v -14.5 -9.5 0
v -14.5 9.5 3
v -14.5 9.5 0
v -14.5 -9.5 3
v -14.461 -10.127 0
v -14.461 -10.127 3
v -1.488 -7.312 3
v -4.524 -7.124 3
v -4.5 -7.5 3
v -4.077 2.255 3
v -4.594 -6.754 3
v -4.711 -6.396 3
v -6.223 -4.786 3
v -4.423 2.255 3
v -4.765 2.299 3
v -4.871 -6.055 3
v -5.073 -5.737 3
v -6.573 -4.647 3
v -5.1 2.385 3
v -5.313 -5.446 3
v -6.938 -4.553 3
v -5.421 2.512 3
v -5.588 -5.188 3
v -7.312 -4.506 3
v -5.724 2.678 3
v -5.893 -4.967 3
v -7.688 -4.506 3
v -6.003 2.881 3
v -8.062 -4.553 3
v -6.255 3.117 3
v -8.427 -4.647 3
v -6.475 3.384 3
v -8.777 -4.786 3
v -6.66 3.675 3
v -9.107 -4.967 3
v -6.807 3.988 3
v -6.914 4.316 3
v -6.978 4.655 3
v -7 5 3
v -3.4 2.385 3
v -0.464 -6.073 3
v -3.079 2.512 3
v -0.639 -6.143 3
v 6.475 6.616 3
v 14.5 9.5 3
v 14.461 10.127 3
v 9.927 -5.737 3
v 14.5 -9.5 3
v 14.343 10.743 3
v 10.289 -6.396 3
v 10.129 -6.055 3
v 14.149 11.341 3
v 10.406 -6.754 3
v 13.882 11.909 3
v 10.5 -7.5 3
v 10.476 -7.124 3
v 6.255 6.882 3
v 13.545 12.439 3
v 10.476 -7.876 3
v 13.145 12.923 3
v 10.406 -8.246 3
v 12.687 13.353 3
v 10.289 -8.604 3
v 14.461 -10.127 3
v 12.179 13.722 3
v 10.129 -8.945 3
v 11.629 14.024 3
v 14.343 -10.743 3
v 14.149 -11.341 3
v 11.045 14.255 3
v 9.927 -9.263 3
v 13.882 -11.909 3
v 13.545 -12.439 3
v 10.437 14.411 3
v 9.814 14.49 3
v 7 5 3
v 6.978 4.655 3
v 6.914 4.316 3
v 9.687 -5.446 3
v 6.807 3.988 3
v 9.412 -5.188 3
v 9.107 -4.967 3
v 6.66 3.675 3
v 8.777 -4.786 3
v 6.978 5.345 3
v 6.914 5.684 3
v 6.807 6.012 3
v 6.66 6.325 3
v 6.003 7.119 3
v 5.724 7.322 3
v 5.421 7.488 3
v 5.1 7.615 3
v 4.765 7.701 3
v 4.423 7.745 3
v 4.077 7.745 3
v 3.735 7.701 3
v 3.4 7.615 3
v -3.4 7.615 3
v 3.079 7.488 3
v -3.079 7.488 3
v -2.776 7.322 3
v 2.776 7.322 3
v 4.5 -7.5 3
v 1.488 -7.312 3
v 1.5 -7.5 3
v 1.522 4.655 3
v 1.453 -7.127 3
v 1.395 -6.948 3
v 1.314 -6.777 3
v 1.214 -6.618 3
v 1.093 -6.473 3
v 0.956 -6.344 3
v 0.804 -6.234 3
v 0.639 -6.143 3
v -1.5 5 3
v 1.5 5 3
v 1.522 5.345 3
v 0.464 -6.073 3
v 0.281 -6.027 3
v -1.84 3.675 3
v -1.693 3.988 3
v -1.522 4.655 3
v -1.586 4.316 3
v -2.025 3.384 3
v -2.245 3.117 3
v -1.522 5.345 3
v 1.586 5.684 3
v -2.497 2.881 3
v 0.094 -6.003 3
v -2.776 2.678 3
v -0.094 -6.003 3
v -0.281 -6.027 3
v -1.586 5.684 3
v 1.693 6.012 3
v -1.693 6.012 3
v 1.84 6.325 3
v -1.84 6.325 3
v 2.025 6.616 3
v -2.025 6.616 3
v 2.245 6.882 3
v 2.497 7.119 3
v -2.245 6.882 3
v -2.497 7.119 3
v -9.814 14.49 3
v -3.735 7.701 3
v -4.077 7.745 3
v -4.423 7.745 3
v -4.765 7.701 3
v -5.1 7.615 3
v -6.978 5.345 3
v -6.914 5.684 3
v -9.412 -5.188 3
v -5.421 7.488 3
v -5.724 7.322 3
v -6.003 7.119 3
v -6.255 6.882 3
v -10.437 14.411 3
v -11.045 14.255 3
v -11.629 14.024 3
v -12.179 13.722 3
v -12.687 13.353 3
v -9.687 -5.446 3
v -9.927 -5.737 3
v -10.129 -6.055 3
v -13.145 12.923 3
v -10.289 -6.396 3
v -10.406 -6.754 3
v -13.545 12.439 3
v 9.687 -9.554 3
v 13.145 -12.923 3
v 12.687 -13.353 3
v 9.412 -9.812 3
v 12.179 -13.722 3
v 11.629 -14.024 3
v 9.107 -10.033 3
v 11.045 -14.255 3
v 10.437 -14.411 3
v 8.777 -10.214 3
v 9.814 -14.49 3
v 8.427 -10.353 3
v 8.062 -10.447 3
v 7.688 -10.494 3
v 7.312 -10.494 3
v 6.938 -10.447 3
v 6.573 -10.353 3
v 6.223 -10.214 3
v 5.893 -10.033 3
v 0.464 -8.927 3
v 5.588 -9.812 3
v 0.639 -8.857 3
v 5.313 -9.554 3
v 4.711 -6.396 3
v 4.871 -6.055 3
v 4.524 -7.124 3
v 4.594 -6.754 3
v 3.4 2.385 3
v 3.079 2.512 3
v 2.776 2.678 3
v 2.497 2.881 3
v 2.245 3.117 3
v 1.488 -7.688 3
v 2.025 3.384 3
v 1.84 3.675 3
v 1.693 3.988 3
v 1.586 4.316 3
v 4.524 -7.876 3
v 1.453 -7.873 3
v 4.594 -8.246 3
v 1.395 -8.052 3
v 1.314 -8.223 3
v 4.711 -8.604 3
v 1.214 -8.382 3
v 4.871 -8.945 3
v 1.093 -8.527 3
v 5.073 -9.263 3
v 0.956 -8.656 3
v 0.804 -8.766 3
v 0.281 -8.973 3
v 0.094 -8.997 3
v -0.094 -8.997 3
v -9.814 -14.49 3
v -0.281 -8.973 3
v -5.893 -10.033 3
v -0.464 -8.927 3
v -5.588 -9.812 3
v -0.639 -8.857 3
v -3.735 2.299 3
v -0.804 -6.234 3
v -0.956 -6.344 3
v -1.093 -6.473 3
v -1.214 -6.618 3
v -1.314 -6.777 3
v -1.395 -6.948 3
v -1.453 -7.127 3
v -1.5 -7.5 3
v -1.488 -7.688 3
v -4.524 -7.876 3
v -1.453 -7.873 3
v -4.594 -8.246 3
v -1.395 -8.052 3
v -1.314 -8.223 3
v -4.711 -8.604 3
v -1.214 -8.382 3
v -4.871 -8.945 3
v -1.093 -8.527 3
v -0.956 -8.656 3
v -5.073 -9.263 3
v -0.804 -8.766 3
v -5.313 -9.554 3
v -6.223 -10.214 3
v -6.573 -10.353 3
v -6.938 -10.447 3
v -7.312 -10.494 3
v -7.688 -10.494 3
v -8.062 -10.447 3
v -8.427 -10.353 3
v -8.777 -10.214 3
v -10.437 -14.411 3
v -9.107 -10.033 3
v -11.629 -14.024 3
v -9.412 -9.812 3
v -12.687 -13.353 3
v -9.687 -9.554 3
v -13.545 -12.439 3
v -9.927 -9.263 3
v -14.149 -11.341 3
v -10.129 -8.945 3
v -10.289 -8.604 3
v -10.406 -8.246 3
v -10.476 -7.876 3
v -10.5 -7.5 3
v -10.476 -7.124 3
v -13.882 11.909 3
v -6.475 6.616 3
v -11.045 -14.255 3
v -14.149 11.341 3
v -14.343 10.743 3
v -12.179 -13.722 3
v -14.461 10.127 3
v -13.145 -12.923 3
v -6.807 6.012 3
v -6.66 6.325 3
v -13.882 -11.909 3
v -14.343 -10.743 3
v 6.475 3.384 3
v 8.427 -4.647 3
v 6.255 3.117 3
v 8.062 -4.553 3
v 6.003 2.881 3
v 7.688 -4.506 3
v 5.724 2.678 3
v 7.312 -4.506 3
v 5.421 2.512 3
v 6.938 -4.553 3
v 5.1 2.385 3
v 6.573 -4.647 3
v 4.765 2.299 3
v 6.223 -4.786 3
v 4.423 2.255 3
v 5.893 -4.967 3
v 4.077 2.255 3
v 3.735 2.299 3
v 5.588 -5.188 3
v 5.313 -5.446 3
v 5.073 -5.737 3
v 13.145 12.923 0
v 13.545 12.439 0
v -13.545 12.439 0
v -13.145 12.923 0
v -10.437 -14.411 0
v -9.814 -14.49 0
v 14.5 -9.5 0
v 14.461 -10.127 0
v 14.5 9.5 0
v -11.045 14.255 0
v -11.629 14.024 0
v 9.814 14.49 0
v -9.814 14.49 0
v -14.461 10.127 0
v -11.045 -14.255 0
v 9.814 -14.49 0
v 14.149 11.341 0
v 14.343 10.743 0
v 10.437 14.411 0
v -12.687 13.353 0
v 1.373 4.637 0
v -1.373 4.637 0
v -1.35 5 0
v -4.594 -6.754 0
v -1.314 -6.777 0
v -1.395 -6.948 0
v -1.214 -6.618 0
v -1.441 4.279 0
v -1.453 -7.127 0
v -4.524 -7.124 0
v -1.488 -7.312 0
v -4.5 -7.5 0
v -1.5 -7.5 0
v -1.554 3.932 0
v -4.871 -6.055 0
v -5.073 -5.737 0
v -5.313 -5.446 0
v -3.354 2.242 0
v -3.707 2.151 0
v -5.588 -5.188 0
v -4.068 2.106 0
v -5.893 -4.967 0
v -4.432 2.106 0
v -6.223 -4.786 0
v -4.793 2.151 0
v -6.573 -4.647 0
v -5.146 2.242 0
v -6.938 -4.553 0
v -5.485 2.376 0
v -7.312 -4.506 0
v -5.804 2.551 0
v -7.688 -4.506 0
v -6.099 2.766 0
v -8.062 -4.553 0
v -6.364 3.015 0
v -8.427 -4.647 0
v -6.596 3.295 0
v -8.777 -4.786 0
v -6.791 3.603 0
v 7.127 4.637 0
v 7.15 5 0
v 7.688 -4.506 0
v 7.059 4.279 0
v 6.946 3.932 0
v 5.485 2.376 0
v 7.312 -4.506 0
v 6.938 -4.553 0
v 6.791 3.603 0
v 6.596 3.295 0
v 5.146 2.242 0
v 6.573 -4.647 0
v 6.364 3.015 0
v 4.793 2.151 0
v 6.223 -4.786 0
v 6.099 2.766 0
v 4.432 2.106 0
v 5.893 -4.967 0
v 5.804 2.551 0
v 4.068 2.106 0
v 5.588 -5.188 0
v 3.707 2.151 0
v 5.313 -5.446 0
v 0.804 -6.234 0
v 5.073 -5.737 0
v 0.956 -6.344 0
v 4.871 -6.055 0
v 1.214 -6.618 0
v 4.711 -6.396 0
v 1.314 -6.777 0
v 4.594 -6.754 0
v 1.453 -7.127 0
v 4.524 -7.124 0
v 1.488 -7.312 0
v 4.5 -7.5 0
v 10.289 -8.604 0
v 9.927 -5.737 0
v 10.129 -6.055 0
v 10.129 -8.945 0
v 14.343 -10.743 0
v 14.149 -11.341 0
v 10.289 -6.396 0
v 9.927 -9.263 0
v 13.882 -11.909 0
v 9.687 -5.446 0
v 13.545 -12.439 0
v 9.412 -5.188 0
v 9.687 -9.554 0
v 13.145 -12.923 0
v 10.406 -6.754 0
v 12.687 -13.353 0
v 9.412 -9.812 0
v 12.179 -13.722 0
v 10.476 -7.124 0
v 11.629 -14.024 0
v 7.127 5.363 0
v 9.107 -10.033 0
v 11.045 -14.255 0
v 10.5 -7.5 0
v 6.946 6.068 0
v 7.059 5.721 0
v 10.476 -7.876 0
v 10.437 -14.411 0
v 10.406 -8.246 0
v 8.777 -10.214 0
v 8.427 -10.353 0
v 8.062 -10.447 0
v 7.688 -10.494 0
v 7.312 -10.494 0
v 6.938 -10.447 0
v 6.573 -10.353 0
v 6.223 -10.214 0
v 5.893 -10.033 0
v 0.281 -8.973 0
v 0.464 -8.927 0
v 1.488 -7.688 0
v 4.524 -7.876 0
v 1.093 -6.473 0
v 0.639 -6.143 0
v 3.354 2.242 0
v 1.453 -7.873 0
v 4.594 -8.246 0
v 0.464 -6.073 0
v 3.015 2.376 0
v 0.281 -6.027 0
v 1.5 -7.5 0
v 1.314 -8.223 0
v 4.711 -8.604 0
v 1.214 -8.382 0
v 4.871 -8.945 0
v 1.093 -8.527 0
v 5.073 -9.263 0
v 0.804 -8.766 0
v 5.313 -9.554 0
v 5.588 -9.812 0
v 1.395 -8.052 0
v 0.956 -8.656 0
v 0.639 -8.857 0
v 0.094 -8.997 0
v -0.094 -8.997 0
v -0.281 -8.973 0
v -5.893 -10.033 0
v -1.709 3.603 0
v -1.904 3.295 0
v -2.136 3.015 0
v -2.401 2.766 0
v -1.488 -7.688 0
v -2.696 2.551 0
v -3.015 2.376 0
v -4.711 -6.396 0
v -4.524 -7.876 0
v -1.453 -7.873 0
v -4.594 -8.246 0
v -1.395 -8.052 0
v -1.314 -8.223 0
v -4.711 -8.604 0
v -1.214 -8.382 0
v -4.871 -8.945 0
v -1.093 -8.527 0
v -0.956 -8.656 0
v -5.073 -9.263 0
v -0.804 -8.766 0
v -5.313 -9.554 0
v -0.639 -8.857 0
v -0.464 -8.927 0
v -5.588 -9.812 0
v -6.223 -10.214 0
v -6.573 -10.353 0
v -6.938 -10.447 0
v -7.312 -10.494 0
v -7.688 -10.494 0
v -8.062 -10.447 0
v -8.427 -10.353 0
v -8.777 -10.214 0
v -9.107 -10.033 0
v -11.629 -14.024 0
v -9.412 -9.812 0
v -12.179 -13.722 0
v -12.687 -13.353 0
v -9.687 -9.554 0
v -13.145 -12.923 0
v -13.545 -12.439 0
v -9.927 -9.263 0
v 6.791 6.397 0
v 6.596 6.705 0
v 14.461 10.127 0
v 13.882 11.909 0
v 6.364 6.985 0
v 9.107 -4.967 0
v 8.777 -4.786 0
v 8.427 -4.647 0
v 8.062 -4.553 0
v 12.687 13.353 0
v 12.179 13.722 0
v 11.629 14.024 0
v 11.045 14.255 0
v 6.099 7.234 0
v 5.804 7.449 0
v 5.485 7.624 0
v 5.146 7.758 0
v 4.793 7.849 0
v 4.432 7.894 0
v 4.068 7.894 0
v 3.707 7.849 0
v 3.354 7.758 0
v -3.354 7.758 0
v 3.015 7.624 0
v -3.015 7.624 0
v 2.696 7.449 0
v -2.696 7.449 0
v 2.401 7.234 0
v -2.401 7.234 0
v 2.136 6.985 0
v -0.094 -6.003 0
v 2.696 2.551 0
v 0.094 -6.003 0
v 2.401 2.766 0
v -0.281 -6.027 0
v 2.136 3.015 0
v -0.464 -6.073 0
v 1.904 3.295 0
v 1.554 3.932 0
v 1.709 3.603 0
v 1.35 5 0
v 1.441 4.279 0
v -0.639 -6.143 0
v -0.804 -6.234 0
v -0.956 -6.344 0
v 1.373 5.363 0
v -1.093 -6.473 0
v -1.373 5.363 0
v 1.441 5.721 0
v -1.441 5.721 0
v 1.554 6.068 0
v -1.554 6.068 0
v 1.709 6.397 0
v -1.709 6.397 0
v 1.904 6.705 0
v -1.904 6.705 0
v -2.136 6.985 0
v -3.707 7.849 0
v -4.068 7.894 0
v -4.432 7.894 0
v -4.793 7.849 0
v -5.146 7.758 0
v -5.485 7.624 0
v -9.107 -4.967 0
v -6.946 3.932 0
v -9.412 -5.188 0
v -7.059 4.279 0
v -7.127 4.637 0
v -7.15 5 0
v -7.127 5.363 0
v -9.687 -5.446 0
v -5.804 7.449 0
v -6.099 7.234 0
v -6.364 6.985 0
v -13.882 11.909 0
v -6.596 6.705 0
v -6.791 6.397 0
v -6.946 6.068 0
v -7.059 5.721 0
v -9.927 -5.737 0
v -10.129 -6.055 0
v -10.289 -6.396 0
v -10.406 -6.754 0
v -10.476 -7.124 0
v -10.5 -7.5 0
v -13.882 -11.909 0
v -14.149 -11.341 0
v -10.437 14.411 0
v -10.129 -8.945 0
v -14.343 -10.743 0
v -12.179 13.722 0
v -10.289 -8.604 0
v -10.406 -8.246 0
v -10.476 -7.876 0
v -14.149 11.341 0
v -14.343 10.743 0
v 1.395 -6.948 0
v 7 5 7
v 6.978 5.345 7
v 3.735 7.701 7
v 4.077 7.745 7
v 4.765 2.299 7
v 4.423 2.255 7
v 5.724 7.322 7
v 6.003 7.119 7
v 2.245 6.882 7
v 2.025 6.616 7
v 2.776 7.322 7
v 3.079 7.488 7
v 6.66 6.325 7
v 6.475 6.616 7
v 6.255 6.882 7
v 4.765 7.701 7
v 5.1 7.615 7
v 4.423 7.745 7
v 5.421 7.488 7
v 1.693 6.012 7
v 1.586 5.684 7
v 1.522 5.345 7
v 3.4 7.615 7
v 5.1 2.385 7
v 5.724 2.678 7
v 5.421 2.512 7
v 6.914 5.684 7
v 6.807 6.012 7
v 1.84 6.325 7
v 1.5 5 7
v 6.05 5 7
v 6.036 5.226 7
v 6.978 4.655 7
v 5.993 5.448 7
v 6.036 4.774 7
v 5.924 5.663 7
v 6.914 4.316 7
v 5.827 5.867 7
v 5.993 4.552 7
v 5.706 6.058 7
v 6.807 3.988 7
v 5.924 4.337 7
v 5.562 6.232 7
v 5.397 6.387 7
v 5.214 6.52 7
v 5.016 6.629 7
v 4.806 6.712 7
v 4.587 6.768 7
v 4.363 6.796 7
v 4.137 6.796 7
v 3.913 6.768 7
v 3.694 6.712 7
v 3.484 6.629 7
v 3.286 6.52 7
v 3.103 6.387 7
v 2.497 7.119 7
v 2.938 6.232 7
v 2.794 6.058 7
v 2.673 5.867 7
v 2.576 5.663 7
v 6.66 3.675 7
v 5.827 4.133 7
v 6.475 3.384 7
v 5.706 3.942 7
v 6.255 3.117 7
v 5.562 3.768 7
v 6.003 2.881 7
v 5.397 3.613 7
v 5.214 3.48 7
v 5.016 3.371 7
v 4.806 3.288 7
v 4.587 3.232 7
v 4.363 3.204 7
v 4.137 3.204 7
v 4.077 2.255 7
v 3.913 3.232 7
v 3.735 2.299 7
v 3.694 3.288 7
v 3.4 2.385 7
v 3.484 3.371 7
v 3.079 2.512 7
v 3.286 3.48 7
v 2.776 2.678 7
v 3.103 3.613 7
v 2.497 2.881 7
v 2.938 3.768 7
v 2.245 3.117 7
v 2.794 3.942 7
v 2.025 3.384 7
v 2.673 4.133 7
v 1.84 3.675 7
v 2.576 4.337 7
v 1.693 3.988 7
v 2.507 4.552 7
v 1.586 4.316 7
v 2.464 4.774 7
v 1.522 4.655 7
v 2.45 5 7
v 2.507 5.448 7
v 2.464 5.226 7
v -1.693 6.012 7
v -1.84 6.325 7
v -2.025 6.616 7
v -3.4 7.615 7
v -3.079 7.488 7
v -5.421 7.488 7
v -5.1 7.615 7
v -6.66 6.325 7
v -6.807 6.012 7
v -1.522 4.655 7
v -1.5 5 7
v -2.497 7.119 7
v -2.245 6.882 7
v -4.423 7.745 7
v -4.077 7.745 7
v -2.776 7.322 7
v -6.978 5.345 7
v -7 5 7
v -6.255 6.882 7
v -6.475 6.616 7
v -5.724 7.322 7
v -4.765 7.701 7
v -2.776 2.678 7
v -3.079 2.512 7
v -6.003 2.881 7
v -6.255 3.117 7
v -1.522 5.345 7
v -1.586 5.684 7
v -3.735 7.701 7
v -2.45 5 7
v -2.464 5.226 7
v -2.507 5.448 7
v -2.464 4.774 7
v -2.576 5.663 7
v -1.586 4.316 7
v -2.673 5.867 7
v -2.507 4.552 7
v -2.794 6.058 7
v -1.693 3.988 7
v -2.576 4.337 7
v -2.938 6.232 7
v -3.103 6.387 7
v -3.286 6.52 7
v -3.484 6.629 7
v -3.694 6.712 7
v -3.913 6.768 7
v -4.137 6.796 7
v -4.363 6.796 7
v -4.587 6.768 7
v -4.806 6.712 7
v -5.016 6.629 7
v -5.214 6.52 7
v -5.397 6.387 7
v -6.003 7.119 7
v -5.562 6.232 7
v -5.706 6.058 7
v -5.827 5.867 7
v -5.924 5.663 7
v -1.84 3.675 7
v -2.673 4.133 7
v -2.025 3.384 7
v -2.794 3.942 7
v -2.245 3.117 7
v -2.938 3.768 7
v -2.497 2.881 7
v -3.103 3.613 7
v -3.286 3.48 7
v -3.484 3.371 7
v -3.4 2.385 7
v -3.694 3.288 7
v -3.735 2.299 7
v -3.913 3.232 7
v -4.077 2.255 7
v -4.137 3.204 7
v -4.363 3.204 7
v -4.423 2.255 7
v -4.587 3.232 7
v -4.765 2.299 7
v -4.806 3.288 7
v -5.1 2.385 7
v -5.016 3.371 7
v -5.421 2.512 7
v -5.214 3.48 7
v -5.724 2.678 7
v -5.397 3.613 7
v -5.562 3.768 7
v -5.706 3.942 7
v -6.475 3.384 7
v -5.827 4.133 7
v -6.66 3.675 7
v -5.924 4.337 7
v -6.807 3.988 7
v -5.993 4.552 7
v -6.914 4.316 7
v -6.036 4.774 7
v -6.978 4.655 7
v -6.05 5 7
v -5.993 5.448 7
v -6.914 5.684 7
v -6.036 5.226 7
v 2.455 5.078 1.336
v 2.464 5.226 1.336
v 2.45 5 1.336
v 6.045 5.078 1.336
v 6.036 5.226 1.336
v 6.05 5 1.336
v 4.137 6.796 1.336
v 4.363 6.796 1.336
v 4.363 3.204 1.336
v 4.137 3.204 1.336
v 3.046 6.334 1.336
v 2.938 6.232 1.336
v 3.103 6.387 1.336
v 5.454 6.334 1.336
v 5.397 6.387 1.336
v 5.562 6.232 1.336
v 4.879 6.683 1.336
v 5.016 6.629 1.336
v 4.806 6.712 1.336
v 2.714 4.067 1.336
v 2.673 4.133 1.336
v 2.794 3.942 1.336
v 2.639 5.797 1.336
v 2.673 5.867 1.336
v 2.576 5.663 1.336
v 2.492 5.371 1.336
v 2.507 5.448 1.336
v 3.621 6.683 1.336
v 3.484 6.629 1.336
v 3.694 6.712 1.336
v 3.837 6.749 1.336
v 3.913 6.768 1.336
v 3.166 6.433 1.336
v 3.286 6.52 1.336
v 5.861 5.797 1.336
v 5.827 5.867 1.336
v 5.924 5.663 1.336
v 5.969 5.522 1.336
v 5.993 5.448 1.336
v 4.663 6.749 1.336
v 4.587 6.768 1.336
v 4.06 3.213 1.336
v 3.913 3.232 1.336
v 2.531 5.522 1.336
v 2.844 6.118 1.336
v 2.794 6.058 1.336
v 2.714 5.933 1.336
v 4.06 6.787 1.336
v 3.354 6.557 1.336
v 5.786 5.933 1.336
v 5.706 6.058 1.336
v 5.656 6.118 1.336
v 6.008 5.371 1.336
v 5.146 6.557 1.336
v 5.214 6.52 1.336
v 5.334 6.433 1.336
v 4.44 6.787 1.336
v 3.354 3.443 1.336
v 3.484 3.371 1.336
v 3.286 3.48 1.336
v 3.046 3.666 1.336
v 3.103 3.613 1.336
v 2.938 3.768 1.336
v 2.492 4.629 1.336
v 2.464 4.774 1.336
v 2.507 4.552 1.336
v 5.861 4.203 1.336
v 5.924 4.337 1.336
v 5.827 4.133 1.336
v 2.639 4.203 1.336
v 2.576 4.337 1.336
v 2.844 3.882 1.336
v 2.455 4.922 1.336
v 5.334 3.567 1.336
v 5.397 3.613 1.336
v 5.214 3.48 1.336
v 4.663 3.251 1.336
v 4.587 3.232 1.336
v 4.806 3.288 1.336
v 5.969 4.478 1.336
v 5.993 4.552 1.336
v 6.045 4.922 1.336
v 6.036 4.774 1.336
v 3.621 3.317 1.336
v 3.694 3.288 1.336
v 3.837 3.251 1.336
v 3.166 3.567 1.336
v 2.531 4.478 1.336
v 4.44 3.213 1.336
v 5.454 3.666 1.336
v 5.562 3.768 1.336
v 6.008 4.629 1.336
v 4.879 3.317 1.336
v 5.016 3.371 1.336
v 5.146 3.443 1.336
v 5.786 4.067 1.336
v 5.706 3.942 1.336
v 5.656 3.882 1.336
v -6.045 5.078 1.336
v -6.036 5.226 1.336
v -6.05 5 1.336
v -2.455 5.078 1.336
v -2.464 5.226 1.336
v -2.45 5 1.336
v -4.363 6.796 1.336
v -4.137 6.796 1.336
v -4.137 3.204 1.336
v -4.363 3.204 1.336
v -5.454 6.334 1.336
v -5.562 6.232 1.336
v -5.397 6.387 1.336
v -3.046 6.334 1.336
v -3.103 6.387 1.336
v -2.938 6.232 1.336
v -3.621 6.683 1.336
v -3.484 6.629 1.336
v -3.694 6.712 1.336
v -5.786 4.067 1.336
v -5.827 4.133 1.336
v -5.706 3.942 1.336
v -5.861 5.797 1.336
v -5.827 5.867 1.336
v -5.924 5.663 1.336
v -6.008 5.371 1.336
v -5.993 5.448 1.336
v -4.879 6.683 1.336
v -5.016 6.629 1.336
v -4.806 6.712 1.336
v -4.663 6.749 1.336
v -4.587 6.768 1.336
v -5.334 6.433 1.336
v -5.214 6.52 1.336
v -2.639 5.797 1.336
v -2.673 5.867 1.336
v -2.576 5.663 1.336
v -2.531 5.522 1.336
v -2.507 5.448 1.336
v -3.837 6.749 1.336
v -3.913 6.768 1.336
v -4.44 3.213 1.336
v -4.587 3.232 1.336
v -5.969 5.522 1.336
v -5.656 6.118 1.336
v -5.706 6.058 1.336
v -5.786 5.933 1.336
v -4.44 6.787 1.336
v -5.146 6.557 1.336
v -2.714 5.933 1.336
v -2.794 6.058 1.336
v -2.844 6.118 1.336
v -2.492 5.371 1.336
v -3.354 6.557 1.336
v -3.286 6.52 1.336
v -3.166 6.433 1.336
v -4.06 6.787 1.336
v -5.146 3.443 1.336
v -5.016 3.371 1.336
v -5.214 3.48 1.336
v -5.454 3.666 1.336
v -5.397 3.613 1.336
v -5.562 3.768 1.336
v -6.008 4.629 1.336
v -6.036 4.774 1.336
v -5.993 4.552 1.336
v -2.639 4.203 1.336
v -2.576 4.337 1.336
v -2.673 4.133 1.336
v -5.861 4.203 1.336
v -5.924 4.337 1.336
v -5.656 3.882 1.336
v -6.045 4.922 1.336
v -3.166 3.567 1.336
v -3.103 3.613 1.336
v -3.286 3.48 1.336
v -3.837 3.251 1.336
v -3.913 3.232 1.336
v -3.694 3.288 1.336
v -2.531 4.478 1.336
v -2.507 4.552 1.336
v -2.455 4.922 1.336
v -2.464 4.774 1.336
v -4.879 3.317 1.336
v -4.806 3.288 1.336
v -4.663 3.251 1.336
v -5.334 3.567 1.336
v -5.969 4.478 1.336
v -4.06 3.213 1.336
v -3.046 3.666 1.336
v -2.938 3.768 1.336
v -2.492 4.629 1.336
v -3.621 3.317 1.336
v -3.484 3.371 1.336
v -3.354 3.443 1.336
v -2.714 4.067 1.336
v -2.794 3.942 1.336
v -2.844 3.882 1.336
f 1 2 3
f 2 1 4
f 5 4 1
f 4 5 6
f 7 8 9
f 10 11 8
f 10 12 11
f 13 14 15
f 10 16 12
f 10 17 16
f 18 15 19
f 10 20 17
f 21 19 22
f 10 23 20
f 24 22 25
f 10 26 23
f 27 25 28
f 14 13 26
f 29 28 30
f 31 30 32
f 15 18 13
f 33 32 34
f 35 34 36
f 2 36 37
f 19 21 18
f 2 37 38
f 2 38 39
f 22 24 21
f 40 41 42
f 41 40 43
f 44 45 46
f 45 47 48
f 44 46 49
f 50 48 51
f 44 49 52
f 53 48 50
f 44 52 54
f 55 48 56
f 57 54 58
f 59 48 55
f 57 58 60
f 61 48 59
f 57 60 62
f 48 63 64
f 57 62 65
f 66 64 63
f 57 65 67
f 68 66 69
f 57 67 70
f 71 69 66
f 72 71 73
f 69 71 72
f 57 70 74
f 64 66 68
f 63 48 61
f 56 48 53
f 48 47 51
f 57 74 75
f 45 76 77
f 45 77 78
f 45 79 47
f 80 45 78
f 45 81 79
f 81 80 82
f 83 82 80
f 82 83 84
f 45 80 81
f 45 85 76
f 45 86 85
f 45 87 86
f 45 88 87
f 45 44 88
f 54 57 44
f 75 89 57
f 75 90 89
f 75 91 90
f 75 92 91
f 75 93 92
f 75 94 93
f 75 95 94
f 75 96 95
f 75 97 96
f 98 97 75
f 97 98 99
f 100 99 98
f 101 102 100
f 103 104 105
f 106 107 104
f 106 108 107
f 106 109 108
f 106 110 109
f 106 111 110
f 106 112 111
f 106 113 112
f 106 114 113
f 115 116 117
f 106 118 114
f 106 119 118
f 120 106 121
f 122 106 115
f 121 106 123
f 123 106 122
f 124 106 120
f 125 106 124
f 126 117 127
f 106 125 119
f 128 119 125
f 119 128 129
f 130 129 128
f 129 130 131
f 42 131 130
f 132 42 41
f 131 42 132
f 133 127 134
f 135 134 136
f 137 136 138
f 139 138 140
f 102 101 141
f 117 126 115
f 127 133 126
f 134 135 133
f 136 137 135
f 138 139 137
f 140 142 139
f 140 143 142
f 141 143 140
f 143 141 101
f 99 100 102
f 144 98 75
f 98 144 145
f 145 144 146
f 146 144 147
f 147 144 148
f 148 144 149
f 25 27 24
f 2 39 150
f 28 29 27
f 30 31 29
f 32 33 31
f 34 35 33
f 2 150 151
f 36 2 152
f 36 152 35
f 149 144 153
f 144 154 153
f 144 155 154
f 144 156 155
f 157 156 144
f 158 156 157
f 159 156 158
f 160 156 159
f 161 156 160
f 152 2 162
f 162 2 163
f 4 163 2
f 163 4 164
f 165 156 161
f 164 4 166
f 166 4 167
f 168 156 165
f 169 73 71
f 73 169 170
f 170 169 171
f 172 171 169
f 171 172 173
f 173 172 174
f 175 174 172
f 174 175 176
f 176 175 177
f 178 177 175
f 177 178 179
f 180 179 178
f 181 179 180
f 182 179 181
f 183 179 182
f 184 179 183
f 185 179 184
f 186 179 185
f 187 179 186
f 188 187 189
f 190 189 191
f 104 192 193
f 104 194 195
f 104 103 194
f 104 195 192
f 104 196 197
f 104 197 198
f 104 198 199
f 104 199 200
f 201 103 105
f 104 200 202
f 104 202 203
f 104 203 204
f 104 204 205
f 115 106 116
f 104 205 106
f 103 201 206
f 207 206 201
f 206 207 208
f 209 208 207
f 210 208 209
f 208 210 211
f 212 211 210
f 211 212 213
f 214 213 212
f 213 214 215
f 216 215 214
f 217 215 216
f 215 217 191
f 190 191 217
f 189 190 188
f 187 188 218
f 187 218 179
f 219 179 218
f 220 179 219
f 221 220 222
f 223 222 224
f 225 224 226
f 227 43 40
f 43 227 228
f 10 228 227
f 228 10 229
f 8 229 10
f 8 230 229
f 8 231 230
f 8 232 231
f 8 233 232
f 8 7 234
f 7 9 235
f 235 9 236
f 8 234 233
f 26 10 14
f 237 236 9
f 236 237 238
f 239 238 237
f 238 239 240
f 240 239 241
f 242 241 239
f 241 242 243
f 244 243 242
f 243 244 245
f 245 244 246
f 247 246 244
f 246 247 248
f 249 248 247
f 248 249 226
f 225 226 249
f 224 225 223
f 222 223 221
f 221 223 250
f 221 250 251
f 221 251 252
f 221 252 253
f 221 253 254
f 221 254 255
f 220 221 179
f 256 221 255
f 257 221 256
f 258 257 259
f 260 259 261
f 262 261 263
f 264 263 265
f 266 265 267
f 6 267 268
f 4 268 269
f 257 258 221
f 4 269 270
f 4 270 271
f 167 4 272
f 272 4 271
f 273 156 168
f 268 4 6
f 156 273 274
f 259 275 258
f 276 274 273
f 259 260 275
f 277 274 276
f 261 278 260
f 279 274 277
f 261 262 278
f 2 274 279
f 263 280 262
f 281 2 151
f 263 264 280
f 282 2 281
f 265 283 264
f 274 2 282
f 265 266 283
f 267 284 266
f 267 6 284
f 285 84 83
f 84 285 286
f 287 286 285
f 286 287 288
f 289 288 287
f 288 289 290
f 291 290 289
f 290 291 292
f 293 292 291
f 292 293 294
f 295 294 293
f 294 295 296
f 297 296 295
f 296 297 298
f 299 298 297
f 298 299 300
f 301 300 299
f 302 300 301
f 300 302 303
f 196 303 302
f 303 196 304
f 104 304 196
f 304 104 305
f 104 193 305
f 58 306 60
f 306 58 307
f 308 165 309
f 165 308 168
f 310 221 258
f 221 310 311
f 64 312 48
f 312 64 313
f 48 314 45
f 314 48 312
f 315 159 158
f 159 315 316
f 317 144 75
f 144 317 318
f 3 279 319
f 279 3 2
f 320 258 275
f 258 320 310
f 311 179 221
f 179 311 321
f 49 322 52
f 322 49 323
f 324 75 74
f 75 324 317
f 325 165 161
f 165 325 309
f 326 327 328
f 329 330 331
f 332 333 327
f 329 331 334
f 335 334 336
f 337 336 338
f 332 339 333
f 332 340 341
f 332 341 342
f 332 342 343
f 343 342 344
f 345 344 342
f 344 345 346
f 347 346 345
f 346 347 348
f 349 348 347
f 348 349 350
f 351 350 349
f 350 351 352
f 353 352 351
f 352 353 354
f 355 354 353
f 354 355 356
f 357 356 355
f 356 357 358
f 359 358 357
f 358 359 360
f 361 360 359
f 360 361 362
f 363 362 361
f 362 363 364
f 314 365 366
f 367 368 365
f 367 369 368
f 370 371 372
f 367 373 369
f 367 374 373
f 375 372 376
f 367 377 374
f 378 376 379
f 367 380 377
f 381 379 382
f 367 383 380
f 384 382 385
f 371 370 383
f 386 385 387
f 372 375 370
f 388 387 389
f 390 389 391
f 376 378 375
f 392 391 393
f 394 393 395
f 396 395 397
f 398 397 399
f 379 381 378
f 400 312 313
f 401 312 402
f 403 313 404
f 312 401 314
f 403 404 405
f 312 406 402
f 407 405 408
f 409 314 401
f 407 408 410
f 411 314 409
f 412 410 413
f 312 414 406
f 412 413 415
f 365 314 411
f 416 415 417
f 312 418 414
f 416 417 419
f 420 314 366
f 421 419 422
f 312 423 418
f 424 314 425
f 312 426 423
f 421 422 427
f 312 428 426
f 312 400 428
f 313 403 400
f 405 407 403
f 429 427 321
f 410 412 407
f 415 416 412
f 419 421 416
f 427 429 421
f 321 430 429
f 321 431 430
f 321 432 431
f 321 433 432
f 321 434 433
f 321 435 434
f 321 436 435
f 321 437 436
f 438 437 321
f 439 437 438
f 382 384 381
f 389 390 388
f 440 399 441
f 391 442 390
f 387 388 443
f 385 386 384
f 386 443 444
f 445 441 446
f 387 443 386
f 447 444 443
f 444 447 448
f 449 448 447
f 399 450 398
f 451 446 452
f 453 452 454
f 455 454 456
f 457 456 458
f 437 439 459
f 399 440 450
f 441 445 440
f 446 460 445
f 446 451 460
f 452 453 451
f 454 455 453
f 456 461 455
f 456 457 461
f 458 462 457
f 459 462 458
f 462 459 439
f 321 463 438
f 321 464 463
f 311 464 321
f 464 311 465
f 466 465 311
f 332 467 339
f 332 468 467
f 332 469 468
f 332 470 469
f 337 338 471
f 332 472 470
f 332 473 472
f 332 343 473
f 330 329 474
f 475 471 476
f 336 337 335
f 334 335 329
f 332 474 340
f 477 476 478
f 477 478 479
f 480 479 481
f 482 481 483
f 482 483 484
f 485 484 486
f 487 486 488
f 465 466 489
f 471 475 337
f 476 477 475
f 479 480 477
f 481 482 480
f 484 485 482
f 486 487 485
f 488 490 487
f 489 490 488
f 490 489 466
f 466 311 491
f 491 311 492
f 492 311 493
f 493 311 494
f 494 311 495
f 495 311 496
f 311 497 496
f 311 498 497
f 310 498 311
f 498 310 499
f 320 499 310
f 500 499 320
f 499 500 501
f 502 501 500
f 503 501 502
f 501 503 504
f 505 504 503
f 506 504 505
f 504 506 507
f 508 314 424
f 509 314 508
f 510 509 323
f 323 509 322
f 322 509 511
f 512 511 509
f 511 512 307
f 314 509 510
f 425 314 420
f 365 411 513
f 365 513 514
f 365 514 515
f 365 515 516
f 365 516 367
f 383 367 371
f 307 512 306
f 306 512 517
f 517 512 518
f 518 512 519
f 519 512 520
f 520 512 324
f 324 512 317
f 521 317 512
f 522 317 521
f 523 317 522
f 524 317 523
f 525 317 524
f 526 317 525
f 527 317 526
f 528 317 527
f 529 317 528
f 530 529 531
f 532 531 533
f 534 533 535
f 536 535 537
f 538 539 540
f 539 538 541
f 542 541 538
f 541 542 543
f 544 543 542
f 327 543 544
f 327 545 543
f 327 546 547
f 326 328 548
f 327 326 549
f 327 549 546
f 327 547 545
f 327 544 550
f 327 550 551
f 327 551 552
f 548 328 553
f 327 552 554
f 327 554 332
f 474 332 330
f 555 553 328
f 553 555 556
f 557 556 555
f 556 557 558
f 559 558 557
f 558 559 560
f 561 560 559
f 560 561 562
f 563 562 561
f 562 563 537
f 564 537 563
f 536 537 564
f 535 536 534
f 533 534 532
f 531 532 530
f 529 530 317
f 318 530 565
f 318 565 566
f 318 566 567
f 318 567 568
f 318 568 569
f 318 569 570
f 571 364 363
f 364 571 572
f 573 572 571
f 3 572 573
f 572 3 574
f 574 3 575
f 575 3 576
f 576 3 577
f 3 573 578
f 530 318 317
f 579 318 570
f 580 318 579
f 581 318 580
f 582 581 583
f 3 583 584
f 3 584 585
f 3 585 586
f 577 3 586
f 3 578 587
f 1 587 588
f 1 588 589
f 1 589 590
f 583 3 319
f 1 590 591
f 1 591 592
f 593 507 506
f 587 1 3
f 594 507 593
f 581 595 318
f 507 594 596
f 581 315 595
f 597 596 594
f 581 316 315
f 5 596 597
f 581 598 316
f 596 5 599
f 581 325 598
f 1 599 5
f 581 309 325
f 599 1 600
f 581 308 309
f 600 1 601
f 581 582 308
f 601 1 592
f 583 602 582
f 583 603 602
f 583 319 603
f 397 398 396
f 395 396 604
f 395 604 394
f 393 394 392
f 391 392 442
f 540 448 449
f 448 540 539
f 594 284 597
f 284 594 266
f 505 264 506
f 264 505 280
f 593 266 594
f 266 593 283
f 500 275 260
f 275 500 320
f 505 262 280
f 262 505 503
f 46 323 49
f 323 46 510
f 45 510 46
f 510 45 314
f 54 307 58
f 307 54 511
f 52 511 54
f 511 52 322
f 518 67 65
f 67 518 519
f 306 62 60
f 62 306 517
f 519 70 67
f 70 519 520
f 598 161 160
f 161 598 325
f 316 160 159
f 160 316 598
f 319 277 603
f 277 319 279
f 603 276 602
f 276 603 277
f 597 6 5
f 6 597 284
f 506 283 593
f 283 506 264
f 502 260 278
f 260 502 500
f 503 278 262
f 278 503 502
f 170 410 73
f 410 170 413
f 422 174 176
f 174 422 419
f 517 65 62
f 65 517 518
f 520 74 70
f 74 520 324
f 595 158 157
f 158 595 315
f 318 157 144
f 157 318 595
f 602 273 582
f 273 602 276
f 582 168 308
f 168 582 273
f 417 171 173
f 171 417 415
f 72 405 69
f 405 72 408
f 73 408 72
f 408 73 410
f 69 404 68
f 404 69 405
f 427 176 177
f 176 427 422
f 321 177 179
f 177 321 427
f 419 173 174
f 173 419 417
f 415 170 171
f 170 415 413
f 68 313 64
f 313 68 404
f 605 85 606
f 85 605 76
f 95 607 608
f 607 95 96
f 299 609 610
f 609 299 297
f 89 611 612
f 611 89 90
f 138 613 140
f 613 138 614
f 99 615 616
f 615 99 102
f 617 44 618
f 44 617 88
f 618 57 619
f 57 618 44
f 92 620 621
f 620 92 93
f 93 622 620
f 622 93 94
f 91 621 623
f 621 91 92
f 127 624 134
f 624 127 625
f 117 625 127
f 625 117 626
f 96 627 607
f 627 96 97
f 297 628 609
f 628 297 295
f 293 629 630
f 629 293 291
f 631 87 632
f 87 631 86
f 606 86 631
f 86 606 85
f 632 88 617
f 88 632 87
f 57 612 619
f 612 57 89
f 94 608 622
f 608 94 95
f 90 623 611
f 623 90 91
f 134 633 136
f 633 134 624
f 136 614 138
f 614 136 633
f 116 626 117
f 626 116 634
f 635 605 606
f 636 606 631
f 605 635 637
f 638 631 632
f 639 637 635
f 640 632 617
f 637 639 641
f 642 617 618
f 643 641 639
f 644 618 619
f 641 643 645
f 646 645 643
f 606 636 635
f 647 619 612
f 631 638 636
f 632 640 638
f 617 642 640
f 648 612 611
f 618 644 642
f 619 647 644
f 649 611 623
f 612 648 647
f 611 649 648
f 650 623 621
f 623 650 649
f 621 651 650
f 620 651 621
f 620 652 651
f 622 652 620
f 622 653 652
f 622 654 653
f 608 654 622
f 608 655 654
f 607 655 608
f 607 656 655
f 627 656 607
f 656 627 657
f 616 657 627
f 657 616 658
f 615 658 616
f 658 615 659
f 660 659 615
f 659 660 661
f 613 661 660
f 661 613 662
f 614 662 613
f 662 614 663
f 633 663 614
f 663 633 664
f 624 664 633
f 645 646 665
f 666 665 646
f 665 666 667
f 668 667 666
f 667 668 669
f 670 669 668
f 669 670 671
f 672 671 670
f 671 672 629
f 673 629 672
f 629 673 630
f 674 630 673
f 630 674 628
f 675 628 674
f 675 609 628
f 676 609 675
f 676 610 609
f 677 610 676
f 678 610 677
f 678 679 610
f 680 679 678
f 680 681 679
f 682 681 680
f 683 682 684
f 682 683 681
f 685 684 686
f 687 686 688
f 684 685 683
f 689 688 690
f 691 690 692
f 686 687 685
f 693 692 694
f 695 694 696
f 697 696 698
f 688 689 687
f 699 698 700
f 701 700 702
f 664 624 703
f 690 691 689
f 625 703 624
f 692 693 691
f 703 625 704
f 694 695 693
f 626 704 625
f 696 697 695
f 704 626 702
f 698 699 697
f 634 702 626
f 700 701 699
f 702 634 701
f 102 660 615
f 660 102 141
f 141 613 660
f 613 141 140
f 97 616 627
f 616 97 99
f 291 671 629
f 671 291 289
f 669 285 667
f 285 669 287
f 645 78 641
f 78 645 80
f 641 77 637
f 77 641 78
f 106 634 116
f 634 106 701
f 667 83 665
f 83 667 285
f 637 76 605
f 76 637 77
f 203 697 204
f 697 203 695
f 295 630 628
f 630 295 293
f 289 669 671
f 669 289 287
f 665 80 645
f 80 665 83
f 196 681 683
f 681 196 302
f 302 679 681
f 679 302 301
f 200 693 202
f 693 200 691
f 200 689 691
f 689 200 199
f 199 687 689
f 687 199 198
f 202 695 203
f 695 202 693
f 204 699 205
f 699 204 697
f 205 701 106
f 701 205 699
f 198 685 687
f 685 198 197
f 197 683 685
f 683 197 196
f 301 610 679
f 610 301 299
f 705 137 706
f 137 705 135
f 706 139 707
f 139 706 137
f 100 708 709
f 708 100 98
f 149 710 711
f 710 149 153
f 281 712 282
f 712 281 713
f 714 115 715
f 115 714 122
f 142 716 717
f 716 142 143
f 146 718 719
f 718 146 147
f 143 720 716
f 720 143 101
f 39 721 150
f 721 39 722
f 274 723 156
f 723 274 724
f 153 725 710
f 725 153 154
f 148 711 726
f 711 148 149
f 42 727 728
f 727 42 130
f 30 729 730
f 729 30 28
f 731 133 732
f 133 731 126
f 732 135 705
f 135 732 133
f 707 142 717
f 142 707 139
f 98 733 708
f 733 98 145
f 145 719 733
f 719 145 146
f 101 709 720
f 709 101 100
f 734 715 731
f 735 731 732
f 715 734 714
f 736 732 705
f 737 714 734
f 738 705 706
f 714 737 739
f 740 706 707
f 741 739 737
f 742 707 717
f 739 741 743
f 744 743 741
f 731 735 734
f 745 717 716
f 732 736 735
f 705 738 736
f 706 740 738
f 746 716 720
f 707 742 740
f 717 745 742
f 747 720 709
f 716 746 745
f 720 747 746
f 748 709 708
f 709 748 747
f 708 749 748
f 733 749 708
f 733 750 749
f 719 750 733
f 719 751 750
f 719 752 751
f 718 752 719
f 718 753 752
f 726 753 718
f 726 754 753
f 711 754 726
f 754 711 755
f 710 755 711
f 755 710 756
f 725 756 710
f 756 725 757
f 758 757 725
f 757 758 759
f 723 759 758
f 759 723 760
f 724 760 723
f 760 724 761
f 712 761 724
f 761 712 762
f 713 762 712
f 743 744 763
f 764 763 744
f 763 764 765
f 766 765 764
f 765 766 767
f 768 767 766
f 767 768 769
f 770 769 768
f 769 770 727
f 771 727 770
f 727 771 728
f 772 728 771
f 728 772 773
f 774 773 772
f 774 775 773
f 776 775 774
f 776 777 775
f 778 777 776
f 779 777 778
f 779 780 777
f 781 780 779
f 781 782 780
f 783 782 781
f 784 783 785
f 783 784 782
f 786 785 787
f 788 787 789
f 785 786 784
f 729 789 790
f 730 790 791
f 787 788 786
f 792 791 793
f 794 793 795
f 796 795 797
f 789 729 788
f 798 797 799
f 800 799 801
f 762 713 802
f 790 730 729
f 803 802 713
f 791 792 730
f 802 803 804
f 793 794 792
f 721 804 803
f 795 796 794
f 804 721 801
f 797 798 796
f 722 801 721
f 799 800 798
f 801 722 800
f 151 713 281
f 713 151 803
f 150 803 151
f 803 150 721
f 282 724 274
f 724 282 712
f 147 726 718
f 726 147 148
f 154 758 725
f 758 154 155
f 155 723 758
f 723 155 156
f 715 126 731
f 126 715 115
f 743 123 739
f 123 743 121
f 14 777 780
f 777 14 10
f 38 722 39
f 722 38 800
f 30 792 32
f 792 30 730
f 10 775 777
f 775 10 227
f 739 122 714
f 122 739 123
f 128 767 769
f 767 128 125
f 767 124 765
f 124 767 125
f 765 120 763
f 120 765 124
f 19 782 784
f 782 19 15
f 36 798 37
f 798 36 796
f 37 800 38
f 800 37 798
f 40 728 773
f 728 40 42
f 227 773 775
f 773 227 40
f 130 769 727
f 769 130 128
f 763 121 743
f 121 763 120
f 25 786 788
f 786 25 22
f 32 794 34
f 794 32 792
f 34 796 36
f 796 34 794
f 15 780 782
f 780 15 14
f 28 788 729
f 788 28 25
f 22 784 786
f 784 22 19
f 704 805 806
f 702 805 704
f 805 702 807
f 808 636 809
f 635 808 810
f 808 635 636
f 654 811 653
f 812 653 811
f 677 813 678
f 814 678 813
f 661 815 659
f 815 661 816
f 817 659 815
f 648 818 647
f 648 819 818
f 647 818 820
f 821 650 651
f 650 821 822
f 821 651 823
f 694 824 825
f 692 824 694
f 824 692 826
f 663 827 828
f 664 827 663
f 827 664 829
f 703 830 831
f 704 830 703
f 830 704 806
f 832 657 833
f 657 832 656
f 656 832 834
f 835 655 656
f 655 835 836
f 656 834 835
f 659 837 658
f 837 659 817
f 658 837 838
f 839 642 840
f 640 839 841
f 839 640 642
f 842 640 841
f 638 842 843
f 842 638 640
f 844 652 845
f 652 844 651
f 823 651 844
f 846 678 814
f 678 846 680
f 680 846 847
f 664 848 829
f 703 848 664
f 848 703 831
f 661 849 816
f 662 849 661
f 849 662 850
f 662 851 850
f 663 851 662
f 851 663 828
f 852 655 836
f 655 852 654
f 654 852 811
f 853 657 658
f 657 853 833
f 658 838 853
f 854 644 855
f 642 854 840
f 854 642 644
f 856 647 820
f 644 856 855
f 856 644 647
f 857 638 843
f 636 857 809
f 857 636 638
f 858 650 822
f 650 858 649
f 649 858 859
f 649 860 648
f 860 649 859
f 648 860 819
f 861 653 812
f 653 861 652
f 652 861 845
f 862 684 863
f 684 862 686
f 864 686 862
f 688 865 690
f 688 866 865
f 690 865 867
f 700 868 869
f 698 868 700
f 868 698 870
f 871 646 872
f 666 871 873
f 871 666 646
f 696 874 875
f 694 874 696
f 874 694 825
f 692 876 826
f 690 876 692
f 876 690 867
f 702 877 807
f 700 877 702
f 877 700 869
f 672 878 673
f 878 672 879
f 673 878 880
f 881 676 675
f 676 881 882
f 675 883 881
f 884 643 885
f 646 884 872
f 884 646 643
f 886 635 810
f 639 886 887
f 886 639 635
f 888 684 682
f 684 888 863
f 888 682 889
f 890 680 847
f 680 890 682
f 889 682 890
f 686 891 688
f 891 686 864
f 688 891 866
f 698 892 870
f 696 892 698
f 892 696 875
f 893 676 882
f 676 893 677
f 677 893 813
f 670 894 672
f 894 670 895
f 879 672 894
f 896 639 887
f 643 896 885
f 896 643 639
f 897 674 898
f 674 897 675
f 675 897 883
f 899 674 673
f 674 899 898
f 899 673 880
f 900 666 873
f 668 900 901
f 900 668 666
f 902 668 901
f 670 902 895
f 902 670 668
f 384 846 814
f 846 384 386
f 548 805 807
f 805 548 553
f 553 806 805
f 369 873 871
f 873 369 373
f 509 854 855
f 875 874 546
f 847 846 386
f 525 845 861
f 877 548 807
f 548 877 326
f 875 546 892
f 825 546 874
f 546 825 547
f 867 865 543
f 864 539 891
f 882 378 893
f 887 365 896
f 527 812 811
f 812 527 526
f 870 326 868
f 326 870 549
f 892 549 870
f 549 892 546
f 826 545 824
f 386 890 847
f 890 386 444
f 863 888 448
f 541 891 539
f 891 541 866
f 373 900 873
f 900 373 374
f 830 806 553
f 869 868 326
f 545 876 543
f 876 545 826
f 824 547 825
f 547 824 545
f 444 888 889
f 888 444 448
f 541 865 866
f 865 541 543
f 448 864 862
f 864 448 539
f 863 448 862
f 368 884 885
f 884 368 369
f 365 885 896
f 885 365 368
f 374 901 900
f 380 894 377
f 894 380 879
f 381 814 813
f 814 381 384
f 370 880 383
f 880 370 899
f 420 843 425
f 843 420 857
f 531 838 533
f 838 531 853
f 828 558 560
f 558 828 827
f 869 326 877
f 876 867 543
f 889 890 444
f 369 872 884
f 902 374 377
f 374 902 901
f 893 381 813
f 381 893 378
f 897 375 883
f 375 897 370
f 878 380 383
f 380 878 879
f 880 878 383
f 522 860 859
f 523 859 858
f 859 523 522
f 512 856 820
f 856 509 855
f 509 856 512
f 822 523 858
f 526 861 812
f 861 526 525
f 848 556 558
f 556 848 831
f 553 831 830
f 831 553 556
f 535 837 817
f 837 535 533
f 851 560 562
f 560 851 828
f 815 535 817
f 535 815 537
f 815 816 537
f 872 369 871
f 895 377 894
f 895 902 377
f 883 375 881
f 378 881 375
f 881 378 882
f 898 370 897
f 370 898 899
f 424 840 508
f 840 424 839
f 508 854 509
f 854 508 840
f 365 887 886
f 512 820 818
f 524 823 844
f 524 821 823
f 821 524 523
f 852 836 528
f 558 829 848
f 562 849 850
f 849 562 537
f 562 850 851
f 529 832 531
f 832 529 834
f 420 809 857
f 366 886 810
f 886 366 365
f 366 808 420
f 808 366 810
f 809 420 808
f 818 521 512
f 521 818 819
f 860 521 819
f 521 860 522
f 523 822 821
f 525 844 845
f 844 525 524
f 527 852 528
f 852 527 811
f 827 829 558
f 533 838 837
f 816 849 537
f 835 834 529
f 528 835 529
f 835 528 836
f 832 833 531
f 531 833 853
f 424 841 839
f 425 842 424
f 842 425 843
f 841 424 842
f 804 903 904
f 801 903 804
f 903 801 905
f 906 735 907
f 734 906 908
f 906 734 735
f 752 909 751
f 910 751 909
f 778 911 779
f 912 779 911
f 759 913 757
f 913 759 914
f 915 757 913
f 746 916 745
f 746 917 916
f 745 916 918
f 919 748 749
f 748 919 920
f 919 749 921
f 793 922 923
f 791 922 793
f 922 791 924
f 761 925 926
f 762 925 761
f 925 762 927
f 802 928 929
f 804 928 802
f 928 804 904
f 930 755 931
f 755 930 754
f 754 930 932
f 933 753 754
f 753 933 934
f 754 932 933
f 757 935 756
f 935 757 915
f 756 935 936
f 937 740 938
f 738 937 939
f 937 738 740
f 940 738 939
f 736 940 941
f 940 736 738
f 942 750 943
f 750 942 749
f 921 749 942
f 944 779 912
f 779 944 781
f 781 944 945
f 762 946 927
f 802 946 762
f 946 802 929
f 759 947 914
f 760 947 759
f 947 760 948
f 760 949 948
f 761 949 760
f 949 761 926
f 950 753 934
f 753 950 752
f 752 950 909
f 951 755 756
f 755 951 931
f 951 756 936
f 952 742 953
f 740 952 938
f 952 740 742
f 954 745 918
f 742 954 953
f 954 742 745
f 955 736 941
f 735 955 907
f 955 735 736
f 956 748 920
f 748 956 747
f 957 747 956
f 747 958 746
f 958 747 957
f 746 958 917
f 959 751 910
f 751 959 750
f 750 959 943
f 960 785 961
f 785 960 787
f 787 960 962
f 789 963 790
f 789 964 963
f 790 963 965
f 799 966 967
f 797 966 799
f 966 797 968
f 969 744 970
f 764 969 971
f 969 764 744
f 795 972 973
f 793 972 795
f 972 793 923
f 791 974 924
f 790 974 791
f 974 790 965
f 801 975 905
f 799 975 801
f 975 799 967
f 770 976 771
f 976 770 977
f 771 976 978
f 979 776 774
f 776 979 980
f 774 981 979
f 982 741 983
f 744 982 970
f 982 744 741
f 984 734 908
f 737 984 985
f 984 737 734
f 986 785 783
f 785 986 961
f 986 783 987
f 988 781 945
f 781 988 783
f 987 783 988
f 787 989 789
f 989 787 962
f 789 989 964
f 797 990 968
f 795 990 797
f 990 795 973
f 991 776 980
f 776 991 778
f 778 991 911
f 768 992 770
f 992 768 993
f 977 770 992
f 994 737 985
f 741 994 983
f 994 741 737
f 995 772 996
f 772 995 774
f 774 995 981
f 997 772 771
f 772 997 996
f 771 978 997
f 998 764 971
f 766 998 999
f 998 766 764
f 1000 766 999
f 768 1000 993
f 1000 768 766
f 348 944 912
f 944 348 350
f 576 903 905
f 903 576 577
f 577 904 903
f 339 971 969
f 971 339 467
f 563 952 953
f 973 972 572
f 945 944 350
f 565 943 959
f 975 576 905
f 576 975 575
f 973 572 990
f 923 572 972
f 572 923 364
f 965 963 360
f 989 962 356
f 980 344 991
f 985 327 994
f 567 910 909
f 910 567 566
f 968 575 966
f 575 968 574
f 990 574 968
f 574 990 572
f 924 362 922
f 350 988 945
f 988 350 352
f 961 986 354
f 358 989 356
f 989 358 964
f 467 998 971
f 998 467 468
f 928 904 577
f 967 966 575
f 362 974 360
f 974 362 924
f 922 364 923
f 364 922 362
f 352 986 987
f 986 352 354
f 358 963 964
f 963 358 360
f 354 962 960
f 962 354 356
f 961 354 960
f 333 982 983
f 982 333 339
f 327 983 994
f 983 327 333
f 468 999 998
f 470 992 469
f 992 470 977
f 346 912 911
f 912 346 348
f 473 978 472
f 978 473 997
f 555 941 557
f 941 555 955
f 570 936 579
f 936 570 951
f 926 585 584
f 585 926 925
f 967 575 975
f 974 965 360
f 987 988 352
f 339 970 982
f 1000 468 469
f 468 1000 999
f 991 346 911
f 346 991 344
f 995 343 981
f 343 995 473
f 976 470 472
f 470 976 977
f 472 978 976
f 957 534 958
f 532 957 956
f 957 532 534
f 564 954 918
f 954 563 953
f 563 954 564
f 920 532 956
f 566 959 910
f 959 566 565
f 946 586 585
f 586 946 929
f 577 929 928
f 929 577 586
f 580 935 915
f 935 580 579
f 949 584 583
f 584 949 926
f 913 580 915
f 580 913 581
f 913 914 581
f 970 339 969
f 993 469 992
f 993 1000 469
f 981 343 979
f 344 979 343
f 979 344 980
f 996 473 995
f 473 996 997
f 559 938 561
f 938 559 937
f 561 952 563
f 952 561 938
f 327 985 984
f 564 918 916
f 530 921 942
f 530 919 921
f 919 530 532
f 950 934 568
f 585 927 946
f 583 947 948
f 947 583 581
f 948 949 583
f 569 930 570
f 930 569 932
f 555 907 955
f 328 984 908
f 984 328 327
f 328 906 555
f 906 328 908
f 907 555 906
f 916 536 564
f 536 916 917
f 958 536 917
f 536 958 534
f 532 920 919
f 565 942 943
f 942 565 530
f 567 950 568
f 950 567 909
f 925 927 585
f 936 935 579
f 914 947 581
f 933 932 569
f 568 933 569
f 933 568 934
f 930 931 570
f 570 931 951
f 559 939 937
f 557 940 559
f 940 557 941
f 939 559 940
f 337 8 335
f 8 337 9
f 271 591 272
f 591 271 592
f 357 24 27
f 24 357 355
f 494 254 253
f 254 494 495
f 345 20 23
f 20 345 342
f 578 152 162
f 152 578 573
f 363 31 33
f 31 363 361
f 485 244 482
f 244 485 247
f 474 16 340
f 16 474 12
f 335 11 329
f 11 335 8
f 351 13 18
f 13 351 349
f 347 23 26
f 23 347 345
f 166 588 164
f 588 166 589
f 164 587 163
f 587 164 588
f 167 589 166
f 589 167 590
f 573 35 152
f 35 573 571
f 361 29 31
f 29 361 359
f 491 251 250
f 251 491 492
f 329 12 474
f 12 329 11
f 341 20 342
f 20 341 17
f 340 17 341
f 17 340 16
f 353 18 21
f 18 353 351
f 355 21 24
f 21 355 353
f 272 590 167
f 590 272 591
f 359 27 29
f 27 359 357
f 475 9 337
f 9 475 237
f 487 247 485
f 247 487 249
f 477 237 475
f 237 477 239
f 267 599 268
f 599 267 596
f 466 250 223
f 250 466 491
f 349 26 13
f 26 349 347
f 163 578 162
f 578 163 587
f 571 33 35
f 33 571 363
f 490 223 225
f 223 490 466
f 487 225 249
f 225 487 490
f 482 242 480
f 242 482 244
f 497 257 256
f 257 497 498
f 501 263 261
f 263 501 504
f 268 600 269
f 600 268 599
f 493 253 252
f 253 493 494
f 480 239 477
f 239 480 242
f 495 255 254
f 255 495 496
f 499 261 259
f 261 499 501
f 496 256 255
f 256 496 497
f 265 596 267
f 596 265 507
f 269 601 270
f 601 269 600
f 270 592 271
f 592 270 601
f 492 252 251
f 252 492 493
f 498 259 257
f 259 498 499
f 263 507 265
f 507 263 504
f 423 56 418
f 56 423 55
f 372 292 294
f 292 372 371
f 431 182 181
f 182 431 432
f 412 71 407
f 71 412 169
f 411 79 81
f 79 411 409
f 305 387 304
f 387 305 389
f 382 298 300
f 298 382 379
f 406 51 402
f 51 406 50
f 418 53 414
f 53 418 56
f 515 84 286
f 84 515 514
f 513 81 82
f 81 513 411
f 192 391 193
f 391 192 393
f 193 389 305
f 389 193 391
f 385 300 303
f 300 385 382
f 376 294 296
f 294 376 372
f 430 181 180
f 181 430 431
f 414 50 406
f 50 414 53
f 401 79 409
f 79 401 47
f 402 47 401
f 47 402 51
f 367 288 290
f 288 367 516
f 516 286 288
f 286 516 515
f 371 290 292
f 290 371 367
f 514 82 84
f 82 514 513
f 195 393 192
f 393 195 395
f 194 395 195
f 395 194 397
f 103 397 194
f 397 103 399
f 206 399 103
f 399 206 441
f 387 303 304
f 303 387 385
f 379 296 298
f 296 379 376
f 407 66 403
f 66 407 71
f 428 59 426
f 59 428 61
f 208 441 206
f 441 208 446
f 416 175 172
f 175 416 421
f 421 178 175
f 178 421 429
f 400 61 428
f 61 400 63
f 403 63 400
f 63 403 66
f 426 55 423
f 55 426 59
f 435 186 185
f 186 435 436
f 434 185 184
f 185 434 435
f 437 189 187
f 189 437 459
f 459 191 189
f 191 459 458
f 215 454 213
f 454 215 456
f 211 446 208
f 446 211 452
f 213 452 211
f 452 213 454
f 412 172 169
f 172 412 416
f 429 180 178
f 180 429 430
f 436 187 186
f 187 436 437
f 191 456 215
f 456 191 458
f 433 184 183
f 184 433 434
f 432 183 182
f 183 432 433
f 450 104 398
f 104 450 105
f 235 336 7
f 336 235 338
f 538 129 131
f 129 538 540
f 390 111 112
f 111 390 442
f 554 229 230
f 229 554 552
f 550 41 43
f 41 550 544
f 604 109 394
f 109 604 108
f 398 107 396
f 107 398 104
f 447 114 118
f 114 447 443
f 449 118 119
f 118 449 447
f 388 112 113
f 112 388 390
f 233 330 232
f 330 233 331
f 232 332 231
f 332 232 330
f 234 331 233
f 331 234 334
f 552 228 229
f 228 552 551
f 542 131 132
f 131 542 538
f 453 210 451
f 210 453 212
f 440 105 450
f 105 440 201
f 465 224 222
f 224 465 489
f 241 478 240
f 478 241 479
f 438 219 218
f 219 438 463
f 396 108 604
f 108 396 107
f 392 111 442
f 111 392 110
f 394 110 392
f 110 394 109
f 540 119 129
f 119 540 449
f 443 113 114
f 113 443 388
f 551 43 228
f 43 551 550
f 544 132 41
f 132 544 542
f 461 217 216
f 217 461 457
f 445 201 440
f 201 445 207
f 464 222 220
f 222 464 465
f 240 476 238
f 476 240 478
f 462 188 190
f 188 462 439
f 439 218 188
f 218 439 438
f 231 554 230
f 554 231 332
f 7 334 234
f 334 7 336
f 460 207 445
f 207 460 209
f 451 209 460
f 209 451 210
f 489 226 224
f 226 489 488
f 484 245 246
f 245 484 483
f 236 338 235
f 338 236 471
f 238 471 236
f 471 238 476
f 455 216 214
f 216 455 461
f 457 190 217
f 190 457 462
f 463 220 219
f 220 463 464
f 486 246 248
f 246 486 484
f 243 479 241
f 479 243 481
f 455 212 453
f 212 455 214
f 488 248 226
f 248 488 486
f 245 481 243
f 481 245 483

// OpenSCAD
$fn = 50;


difference() {
	union() {
		hull() {
			translate(v = [-9.5000000000, 9.5000000000, 0]) {
				cylinder(h = 3, r = 5);
			}
			translate(v = [9.5000000000, 9.5000000000, 0]) {
				cylinder(h = 3, r = 5);
			}
			translate(v = [-9.5000000000, -9.5000000000, 0]) {
				cylinder(h = 3, r = 5);
			}
			translate(v = [9.5000000000, -9.5000000000, 0]) {
				cylinder(h = 3, r = 5);
			}
		}
		translate(v = [4.2500000000, 5.0000000000, 0]) {
			cylinder(h = 7, r = 2.7500000000);
		}
		translate(v = [-4.2500000000, 5.0000000000, 0]) {
			cylinder(h = 7, r = 2.7500000000);
		}
	}
	union() {
		translate(v = [4.2500000000, 5.0000000000, 0]) {
			rotate(a = [0, 180, 0]) {
				difference() {
					union() {
						translate(v = [0, 0, -7.0000000000]) {
							cylinder(h = 7, r = 1.5000000000);
						}
						translate(v = [0, 0, -7.0000000000]) {
							cylinder(h = 7, r = 1.8000000000);
						}
						translate(v = [0, 0, -1.7000000000]) {
							cylinder(h = 1.7000000000, r1 = 1.5000000000, r2 = 2.9000000000);
						}
						translate(v = [0, 0, -7.0000000000]) {
							cylinder(h = 7, r = 1.5000000000);
						}
					}
					union();
				}
			}
		}
		translate(v = [-4.2500000000, 5.0000000000, 0]) {
			rotate(a = [0, 180, 0]) {
				difference() {
					union() {
						translate(v = [0, 0, -7.0000000000]) {
							cylinder(h = 7, r = 1.5000000000);
						}
						translate(v = [0, 0, -7.0000000000]) {
							cylinder(h = 7, r = 1.8000000000);
						}
						translate(v = [0, 0, -1.7000000000]) {
							cylinder(h = 1.7000000000, r1 = 1.5000000000, r2 = 2.9000000000);
						}
						translate(v = [0, 0, -7.0000000000]) {
							cylinder(h = 7, r = 1.5000000000);
						}
					}
					union();
				}
			}
		}
		translate(v = [-7.5000000000, -7.5000000000, -100.0000000000]) {
			cylinder(h = 200, r = 3.0000000000);
		}
		translate(v = [7.5000000000, -7.5000000000, -100.0000000000]) {
			cylinder(h = 200, r = 3.0000000000);
		}
		translate(v = [-7.5000000000, -7.5000000000, -100.0000000000]) {
			cylinder(h = 200, r = 1.5000000000);
		}
		translate(v = [0.0000000000, -7.5000000000, -100.0000000000]) {
			cylinder(h = 200, r = 1.5000000000);
		}
		translate(v = [7.5000000000, -7.5000000000, -100.0000000000]) {
			cylinder(h = 200, r = 1.5000000000);
		}
		translate(v = [-7.5000000000, -7.5000000000, -100.0000000000]) {
			cylinder(h = 200, r = 1.5000000000);
		}
		translate(v = [0.0000000000, -7.5000000000, -100.0000000000]) {
			cylinder(h = 200, r = 1.5000000000);
		}
		translate(v = [7.5000000000, -7.5000000000, -100.0000000000]) {
			cylinder(h = 200, r = 1.5000000000);
		}
		translate(v = [-7.5000000000, -7.5000000000, -100.0000000000]) {
			cylinder(h = 200, r = 1.5000000000);
		}
		translate(v = [0.0000000000, -7.5000000000, -100.0000000000]) {
			cylinder(h = 200, r = 1.5000000000);
		}
		translate(v = [7.5000000000, -7.5000000000, -100.0000000000]) {
			cylinder(h = 200, r = 1.5000000000);
		}
		translate(v = [4.2500000000, 5.0000000000, -100.0000000000]) {
			cylinder(h = 200, r = 1.5000000000);
		}
		translate(v = [-4.2500000000, 5.0000000000, -100.0000000000]) {
			cylinder(h = 200, r = 1.5000000000);
		}
	}
}
